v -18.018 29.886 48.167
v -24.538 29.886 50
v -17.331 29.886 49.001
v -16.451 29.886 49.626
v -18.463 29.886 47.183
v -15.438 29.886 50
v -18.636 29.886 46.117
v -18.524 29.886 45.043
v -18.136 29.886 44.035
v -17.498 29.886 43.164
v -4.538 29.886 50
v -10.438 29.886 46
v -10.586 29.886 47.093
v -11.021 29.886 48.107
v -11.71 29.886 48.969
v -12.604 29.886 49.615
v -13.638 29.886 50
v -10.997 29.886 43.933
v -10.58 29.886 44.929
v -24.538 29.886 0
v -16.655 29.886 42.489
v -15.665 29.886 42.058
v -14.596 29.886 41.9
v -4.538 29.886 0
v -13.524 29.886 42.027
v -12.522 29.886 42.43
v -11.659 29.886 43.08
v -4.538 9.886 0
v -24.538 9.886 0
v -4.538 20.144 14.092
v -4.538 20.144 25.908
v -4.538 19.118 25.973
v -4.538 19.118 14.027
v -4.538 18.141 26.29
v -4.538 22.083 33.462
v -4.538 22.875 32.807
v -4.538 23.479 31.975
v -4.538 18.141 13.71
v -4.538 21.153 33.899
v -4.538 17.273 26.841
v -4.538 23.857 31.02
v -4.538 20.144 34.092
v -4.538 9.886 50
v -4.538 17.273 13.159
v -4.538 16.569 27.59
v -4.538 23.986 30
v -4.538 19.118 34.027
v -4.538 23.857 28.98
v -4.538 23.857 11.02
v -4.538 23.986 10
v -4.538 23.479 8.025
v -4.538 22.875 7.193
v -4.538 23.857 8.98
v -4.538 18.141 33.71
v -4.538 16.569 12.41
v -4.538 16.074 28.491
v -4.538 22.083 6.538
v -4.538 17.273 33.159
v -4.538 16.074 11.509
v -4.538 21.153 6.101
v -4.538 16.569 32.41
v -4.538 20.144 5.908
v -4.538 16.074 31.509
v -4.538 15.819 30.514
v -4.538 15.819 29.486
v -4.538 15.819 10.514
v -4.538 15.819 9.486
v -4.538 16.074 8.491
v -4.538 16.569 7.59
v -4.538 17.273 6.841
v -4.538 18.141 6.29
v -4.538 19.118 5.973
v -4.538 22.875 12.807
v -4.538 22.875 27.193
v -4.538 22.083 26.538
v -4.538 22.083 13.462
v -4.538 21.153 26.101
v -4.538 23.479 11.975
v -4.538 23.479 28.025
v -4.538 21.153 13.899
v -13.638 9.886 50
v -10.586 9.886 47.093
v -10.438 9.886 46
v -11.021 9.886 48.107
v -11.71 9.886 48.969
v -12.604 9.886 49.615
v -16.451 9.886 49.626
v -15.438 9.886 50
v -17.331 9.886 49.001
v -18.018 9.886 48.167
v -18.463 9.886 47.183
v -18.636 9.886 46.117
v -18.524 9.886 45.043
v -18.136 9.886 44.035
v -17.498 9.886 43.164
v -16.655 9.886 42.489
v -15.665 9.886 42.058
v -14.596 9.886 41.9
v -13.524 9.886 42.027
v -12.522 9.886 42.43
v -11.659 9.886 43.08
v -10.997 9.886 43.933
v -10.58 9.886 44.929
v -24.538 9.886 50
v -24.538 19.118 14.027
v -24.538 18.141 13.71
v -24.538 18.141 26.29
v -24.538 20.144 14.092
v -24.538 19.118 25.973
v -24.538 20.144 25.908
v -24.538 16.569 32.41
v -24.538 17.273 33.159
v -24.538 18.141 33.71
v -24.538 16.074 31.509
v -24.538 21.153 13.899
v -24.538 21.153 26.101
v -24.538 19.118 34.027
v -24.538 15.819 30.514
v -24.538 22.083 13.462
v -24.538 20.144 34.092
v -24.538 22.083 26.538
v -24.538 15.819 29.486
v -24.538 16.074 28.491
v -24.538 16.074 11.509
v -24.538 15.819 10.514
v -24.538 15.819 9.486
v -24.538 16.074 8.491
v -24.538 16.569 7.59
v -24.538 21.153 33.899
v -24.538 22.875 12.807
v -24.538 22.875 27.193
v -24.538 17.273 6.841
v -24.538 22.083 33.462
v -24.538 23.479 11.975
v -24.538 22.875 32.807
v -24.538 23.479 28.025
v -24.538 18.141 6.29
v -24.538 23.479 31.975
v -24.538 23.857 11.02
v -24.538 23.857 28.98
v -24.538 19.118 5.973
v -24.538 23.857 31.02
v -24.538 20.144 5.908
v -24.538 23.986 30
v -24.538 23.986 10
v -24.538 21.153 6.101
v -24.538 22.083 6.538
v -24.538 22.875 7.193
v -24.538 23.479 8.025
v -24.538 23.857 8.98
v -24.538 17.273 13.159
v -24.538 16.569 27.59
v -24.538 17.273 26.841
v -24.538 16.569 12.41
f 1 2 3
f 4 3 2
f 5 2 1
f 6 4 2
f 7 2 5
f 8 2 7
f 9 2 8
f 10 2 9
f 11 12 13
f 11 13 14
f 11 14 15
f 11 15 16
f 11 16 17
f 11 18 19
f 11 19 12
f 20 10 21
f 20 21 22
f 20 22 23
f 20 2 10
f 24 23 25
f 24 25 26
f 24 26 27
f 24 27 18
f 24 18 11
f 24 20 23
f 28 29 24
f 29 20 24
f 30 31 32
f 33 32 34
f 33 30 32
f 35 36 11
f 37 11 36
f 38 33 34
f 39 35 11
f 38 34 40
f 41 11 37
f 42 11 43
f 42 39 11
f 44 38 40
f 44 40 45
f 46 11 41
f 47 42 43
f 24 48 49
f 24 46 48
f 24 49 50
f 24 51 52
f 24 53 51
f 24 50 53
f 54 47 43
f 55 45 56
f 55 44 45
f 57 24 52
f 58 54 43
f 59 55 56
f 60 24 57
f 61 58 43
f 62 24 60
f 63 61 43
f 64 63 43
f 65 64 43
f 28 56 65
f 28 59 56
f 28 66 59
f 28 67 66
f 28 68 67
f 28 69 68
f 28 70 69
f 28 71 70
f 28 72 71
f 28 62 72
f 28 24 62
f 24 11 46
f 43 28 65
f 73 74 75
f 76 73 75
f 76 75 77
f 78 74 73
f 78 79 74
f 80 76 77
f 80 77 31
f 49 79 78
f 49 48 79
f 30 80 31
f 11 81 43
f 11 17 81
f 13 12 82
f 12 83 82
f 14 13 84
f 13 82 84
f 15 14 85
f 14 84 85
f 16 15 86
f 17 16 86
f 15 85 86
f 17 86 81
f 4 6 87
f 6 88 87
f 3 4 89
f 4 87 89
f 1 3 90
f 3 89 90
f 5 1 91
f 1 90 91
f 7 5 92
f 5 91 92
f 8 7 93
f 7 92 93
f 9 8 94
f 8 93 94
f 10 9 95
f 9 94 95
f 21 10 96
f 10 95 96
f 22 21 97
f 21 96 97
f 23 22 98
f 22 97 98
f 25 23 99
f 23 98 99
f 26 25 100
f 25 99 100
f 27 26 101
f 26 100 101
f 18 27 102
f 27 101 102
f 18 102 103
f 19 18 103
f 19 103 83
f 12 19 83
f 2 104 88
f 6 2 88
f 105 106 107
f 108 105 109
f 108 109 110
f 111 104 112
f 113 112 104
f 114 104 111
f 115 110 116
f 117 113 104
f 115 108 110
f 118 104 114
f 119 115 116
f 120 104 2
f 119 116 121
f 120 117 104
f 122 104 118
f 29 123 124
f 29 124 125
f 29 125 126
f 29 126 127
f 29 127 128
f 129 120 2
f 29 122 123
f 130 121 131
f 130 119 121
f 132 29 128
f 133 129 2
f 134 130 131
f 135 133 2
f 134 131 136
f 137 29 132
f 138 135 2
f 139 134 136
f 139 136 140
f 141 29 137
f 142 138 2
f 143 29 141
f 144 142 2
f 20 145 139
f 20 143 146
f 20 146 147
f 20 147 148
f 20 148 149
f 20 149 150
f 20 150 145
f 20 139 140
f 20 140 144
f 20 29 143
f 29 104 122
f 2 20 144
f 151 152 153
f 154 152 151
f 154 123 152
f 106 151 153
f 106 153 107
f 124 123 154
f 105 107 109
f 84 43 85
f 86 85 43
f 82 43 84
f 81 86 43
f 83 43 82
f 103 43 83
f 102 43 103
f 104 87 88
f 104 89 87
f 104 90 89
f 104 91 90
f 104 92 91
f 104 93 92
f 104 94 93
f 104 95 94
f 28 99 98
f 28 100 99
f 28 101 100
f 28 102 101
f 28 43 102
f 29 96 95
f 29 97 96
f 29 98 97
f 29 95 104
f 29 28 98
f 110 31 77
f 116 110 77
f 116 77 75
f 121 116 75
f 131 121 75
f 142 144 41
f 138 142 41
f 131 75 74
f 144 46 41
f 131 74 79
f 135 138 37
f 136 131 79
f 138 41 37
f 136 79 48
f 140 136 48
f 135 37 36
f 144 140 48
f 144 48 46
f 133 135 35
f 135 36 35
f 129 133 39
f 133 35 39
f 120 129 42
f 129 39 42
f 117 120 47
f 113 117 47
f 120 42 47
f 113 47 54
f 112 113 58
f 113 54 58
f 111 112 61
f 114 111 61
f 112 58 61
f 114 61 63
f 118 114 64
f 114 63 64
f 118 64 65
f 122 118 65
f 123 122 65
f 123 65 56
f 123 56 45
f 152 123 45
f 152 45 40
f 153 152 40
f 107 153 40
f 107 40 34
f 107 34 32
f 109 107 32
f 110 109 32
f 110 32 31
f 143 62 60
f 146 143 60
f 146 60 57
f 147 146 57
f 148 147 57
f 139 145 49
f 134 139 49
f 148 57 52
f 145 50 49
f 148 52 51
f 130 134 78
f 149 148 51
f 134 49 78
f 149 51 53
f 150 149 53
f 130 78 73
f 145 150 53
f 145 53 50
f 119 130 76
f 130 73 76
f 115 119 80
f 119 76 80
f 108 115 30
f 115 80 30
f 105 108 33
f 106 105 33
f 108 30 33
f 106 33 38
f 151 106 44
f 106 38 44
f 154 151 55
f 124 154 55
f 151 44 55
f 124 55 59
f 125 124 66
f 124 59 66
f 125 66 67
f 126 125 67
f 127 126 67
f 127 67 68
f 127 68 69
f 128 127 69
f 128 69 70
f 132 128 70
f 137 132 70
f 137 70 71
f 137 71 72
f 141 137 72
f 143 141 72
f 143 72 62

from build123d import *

# Parameters (mm, degrees)
SKETCH_W        = 20
SKETCH_H        = 20
PAD_DEPTH       = 50
SKETCH001_R     = 4.1
POCKET_DEPTH    = 20
SKETCH002_R     = 4.1
POCKET001_DEPTH = 20


with BuildPart() as part:
    # Sketch → Pad (new body)
    with BuildSketch(Plane.XY):
        with Locations((-14.537711, 19.886208)):
            Rectangle(SKETCH_W, SKETCH_H)
    extrude(amount=PAD_DEPTH)

    # Sketch001 → Pocket (cut)
    with BuildSketch(Plane.YZ.offset(-4.537711)):
        with Locations((19.886208, 30)):
            Circle(SKETCH001_R)
        with Locations((19.886208, 10)):
            Circle(SKETCH001_R)
    extrude(amount=-POCKET_DEPTH, mode=Mode.SUBTRACT)

    # Sketch002 → Pocket001 (cut)
    with BuildSketch(Plane.XZ.offset(-9.886208)):
        with Locations((-14.537711, 46)):
            Circle(SKETCH002_R)
    extrude(amount=-POCKET001_DEPTH, mode=Mode.SUBTRACT)


solid = part.part
